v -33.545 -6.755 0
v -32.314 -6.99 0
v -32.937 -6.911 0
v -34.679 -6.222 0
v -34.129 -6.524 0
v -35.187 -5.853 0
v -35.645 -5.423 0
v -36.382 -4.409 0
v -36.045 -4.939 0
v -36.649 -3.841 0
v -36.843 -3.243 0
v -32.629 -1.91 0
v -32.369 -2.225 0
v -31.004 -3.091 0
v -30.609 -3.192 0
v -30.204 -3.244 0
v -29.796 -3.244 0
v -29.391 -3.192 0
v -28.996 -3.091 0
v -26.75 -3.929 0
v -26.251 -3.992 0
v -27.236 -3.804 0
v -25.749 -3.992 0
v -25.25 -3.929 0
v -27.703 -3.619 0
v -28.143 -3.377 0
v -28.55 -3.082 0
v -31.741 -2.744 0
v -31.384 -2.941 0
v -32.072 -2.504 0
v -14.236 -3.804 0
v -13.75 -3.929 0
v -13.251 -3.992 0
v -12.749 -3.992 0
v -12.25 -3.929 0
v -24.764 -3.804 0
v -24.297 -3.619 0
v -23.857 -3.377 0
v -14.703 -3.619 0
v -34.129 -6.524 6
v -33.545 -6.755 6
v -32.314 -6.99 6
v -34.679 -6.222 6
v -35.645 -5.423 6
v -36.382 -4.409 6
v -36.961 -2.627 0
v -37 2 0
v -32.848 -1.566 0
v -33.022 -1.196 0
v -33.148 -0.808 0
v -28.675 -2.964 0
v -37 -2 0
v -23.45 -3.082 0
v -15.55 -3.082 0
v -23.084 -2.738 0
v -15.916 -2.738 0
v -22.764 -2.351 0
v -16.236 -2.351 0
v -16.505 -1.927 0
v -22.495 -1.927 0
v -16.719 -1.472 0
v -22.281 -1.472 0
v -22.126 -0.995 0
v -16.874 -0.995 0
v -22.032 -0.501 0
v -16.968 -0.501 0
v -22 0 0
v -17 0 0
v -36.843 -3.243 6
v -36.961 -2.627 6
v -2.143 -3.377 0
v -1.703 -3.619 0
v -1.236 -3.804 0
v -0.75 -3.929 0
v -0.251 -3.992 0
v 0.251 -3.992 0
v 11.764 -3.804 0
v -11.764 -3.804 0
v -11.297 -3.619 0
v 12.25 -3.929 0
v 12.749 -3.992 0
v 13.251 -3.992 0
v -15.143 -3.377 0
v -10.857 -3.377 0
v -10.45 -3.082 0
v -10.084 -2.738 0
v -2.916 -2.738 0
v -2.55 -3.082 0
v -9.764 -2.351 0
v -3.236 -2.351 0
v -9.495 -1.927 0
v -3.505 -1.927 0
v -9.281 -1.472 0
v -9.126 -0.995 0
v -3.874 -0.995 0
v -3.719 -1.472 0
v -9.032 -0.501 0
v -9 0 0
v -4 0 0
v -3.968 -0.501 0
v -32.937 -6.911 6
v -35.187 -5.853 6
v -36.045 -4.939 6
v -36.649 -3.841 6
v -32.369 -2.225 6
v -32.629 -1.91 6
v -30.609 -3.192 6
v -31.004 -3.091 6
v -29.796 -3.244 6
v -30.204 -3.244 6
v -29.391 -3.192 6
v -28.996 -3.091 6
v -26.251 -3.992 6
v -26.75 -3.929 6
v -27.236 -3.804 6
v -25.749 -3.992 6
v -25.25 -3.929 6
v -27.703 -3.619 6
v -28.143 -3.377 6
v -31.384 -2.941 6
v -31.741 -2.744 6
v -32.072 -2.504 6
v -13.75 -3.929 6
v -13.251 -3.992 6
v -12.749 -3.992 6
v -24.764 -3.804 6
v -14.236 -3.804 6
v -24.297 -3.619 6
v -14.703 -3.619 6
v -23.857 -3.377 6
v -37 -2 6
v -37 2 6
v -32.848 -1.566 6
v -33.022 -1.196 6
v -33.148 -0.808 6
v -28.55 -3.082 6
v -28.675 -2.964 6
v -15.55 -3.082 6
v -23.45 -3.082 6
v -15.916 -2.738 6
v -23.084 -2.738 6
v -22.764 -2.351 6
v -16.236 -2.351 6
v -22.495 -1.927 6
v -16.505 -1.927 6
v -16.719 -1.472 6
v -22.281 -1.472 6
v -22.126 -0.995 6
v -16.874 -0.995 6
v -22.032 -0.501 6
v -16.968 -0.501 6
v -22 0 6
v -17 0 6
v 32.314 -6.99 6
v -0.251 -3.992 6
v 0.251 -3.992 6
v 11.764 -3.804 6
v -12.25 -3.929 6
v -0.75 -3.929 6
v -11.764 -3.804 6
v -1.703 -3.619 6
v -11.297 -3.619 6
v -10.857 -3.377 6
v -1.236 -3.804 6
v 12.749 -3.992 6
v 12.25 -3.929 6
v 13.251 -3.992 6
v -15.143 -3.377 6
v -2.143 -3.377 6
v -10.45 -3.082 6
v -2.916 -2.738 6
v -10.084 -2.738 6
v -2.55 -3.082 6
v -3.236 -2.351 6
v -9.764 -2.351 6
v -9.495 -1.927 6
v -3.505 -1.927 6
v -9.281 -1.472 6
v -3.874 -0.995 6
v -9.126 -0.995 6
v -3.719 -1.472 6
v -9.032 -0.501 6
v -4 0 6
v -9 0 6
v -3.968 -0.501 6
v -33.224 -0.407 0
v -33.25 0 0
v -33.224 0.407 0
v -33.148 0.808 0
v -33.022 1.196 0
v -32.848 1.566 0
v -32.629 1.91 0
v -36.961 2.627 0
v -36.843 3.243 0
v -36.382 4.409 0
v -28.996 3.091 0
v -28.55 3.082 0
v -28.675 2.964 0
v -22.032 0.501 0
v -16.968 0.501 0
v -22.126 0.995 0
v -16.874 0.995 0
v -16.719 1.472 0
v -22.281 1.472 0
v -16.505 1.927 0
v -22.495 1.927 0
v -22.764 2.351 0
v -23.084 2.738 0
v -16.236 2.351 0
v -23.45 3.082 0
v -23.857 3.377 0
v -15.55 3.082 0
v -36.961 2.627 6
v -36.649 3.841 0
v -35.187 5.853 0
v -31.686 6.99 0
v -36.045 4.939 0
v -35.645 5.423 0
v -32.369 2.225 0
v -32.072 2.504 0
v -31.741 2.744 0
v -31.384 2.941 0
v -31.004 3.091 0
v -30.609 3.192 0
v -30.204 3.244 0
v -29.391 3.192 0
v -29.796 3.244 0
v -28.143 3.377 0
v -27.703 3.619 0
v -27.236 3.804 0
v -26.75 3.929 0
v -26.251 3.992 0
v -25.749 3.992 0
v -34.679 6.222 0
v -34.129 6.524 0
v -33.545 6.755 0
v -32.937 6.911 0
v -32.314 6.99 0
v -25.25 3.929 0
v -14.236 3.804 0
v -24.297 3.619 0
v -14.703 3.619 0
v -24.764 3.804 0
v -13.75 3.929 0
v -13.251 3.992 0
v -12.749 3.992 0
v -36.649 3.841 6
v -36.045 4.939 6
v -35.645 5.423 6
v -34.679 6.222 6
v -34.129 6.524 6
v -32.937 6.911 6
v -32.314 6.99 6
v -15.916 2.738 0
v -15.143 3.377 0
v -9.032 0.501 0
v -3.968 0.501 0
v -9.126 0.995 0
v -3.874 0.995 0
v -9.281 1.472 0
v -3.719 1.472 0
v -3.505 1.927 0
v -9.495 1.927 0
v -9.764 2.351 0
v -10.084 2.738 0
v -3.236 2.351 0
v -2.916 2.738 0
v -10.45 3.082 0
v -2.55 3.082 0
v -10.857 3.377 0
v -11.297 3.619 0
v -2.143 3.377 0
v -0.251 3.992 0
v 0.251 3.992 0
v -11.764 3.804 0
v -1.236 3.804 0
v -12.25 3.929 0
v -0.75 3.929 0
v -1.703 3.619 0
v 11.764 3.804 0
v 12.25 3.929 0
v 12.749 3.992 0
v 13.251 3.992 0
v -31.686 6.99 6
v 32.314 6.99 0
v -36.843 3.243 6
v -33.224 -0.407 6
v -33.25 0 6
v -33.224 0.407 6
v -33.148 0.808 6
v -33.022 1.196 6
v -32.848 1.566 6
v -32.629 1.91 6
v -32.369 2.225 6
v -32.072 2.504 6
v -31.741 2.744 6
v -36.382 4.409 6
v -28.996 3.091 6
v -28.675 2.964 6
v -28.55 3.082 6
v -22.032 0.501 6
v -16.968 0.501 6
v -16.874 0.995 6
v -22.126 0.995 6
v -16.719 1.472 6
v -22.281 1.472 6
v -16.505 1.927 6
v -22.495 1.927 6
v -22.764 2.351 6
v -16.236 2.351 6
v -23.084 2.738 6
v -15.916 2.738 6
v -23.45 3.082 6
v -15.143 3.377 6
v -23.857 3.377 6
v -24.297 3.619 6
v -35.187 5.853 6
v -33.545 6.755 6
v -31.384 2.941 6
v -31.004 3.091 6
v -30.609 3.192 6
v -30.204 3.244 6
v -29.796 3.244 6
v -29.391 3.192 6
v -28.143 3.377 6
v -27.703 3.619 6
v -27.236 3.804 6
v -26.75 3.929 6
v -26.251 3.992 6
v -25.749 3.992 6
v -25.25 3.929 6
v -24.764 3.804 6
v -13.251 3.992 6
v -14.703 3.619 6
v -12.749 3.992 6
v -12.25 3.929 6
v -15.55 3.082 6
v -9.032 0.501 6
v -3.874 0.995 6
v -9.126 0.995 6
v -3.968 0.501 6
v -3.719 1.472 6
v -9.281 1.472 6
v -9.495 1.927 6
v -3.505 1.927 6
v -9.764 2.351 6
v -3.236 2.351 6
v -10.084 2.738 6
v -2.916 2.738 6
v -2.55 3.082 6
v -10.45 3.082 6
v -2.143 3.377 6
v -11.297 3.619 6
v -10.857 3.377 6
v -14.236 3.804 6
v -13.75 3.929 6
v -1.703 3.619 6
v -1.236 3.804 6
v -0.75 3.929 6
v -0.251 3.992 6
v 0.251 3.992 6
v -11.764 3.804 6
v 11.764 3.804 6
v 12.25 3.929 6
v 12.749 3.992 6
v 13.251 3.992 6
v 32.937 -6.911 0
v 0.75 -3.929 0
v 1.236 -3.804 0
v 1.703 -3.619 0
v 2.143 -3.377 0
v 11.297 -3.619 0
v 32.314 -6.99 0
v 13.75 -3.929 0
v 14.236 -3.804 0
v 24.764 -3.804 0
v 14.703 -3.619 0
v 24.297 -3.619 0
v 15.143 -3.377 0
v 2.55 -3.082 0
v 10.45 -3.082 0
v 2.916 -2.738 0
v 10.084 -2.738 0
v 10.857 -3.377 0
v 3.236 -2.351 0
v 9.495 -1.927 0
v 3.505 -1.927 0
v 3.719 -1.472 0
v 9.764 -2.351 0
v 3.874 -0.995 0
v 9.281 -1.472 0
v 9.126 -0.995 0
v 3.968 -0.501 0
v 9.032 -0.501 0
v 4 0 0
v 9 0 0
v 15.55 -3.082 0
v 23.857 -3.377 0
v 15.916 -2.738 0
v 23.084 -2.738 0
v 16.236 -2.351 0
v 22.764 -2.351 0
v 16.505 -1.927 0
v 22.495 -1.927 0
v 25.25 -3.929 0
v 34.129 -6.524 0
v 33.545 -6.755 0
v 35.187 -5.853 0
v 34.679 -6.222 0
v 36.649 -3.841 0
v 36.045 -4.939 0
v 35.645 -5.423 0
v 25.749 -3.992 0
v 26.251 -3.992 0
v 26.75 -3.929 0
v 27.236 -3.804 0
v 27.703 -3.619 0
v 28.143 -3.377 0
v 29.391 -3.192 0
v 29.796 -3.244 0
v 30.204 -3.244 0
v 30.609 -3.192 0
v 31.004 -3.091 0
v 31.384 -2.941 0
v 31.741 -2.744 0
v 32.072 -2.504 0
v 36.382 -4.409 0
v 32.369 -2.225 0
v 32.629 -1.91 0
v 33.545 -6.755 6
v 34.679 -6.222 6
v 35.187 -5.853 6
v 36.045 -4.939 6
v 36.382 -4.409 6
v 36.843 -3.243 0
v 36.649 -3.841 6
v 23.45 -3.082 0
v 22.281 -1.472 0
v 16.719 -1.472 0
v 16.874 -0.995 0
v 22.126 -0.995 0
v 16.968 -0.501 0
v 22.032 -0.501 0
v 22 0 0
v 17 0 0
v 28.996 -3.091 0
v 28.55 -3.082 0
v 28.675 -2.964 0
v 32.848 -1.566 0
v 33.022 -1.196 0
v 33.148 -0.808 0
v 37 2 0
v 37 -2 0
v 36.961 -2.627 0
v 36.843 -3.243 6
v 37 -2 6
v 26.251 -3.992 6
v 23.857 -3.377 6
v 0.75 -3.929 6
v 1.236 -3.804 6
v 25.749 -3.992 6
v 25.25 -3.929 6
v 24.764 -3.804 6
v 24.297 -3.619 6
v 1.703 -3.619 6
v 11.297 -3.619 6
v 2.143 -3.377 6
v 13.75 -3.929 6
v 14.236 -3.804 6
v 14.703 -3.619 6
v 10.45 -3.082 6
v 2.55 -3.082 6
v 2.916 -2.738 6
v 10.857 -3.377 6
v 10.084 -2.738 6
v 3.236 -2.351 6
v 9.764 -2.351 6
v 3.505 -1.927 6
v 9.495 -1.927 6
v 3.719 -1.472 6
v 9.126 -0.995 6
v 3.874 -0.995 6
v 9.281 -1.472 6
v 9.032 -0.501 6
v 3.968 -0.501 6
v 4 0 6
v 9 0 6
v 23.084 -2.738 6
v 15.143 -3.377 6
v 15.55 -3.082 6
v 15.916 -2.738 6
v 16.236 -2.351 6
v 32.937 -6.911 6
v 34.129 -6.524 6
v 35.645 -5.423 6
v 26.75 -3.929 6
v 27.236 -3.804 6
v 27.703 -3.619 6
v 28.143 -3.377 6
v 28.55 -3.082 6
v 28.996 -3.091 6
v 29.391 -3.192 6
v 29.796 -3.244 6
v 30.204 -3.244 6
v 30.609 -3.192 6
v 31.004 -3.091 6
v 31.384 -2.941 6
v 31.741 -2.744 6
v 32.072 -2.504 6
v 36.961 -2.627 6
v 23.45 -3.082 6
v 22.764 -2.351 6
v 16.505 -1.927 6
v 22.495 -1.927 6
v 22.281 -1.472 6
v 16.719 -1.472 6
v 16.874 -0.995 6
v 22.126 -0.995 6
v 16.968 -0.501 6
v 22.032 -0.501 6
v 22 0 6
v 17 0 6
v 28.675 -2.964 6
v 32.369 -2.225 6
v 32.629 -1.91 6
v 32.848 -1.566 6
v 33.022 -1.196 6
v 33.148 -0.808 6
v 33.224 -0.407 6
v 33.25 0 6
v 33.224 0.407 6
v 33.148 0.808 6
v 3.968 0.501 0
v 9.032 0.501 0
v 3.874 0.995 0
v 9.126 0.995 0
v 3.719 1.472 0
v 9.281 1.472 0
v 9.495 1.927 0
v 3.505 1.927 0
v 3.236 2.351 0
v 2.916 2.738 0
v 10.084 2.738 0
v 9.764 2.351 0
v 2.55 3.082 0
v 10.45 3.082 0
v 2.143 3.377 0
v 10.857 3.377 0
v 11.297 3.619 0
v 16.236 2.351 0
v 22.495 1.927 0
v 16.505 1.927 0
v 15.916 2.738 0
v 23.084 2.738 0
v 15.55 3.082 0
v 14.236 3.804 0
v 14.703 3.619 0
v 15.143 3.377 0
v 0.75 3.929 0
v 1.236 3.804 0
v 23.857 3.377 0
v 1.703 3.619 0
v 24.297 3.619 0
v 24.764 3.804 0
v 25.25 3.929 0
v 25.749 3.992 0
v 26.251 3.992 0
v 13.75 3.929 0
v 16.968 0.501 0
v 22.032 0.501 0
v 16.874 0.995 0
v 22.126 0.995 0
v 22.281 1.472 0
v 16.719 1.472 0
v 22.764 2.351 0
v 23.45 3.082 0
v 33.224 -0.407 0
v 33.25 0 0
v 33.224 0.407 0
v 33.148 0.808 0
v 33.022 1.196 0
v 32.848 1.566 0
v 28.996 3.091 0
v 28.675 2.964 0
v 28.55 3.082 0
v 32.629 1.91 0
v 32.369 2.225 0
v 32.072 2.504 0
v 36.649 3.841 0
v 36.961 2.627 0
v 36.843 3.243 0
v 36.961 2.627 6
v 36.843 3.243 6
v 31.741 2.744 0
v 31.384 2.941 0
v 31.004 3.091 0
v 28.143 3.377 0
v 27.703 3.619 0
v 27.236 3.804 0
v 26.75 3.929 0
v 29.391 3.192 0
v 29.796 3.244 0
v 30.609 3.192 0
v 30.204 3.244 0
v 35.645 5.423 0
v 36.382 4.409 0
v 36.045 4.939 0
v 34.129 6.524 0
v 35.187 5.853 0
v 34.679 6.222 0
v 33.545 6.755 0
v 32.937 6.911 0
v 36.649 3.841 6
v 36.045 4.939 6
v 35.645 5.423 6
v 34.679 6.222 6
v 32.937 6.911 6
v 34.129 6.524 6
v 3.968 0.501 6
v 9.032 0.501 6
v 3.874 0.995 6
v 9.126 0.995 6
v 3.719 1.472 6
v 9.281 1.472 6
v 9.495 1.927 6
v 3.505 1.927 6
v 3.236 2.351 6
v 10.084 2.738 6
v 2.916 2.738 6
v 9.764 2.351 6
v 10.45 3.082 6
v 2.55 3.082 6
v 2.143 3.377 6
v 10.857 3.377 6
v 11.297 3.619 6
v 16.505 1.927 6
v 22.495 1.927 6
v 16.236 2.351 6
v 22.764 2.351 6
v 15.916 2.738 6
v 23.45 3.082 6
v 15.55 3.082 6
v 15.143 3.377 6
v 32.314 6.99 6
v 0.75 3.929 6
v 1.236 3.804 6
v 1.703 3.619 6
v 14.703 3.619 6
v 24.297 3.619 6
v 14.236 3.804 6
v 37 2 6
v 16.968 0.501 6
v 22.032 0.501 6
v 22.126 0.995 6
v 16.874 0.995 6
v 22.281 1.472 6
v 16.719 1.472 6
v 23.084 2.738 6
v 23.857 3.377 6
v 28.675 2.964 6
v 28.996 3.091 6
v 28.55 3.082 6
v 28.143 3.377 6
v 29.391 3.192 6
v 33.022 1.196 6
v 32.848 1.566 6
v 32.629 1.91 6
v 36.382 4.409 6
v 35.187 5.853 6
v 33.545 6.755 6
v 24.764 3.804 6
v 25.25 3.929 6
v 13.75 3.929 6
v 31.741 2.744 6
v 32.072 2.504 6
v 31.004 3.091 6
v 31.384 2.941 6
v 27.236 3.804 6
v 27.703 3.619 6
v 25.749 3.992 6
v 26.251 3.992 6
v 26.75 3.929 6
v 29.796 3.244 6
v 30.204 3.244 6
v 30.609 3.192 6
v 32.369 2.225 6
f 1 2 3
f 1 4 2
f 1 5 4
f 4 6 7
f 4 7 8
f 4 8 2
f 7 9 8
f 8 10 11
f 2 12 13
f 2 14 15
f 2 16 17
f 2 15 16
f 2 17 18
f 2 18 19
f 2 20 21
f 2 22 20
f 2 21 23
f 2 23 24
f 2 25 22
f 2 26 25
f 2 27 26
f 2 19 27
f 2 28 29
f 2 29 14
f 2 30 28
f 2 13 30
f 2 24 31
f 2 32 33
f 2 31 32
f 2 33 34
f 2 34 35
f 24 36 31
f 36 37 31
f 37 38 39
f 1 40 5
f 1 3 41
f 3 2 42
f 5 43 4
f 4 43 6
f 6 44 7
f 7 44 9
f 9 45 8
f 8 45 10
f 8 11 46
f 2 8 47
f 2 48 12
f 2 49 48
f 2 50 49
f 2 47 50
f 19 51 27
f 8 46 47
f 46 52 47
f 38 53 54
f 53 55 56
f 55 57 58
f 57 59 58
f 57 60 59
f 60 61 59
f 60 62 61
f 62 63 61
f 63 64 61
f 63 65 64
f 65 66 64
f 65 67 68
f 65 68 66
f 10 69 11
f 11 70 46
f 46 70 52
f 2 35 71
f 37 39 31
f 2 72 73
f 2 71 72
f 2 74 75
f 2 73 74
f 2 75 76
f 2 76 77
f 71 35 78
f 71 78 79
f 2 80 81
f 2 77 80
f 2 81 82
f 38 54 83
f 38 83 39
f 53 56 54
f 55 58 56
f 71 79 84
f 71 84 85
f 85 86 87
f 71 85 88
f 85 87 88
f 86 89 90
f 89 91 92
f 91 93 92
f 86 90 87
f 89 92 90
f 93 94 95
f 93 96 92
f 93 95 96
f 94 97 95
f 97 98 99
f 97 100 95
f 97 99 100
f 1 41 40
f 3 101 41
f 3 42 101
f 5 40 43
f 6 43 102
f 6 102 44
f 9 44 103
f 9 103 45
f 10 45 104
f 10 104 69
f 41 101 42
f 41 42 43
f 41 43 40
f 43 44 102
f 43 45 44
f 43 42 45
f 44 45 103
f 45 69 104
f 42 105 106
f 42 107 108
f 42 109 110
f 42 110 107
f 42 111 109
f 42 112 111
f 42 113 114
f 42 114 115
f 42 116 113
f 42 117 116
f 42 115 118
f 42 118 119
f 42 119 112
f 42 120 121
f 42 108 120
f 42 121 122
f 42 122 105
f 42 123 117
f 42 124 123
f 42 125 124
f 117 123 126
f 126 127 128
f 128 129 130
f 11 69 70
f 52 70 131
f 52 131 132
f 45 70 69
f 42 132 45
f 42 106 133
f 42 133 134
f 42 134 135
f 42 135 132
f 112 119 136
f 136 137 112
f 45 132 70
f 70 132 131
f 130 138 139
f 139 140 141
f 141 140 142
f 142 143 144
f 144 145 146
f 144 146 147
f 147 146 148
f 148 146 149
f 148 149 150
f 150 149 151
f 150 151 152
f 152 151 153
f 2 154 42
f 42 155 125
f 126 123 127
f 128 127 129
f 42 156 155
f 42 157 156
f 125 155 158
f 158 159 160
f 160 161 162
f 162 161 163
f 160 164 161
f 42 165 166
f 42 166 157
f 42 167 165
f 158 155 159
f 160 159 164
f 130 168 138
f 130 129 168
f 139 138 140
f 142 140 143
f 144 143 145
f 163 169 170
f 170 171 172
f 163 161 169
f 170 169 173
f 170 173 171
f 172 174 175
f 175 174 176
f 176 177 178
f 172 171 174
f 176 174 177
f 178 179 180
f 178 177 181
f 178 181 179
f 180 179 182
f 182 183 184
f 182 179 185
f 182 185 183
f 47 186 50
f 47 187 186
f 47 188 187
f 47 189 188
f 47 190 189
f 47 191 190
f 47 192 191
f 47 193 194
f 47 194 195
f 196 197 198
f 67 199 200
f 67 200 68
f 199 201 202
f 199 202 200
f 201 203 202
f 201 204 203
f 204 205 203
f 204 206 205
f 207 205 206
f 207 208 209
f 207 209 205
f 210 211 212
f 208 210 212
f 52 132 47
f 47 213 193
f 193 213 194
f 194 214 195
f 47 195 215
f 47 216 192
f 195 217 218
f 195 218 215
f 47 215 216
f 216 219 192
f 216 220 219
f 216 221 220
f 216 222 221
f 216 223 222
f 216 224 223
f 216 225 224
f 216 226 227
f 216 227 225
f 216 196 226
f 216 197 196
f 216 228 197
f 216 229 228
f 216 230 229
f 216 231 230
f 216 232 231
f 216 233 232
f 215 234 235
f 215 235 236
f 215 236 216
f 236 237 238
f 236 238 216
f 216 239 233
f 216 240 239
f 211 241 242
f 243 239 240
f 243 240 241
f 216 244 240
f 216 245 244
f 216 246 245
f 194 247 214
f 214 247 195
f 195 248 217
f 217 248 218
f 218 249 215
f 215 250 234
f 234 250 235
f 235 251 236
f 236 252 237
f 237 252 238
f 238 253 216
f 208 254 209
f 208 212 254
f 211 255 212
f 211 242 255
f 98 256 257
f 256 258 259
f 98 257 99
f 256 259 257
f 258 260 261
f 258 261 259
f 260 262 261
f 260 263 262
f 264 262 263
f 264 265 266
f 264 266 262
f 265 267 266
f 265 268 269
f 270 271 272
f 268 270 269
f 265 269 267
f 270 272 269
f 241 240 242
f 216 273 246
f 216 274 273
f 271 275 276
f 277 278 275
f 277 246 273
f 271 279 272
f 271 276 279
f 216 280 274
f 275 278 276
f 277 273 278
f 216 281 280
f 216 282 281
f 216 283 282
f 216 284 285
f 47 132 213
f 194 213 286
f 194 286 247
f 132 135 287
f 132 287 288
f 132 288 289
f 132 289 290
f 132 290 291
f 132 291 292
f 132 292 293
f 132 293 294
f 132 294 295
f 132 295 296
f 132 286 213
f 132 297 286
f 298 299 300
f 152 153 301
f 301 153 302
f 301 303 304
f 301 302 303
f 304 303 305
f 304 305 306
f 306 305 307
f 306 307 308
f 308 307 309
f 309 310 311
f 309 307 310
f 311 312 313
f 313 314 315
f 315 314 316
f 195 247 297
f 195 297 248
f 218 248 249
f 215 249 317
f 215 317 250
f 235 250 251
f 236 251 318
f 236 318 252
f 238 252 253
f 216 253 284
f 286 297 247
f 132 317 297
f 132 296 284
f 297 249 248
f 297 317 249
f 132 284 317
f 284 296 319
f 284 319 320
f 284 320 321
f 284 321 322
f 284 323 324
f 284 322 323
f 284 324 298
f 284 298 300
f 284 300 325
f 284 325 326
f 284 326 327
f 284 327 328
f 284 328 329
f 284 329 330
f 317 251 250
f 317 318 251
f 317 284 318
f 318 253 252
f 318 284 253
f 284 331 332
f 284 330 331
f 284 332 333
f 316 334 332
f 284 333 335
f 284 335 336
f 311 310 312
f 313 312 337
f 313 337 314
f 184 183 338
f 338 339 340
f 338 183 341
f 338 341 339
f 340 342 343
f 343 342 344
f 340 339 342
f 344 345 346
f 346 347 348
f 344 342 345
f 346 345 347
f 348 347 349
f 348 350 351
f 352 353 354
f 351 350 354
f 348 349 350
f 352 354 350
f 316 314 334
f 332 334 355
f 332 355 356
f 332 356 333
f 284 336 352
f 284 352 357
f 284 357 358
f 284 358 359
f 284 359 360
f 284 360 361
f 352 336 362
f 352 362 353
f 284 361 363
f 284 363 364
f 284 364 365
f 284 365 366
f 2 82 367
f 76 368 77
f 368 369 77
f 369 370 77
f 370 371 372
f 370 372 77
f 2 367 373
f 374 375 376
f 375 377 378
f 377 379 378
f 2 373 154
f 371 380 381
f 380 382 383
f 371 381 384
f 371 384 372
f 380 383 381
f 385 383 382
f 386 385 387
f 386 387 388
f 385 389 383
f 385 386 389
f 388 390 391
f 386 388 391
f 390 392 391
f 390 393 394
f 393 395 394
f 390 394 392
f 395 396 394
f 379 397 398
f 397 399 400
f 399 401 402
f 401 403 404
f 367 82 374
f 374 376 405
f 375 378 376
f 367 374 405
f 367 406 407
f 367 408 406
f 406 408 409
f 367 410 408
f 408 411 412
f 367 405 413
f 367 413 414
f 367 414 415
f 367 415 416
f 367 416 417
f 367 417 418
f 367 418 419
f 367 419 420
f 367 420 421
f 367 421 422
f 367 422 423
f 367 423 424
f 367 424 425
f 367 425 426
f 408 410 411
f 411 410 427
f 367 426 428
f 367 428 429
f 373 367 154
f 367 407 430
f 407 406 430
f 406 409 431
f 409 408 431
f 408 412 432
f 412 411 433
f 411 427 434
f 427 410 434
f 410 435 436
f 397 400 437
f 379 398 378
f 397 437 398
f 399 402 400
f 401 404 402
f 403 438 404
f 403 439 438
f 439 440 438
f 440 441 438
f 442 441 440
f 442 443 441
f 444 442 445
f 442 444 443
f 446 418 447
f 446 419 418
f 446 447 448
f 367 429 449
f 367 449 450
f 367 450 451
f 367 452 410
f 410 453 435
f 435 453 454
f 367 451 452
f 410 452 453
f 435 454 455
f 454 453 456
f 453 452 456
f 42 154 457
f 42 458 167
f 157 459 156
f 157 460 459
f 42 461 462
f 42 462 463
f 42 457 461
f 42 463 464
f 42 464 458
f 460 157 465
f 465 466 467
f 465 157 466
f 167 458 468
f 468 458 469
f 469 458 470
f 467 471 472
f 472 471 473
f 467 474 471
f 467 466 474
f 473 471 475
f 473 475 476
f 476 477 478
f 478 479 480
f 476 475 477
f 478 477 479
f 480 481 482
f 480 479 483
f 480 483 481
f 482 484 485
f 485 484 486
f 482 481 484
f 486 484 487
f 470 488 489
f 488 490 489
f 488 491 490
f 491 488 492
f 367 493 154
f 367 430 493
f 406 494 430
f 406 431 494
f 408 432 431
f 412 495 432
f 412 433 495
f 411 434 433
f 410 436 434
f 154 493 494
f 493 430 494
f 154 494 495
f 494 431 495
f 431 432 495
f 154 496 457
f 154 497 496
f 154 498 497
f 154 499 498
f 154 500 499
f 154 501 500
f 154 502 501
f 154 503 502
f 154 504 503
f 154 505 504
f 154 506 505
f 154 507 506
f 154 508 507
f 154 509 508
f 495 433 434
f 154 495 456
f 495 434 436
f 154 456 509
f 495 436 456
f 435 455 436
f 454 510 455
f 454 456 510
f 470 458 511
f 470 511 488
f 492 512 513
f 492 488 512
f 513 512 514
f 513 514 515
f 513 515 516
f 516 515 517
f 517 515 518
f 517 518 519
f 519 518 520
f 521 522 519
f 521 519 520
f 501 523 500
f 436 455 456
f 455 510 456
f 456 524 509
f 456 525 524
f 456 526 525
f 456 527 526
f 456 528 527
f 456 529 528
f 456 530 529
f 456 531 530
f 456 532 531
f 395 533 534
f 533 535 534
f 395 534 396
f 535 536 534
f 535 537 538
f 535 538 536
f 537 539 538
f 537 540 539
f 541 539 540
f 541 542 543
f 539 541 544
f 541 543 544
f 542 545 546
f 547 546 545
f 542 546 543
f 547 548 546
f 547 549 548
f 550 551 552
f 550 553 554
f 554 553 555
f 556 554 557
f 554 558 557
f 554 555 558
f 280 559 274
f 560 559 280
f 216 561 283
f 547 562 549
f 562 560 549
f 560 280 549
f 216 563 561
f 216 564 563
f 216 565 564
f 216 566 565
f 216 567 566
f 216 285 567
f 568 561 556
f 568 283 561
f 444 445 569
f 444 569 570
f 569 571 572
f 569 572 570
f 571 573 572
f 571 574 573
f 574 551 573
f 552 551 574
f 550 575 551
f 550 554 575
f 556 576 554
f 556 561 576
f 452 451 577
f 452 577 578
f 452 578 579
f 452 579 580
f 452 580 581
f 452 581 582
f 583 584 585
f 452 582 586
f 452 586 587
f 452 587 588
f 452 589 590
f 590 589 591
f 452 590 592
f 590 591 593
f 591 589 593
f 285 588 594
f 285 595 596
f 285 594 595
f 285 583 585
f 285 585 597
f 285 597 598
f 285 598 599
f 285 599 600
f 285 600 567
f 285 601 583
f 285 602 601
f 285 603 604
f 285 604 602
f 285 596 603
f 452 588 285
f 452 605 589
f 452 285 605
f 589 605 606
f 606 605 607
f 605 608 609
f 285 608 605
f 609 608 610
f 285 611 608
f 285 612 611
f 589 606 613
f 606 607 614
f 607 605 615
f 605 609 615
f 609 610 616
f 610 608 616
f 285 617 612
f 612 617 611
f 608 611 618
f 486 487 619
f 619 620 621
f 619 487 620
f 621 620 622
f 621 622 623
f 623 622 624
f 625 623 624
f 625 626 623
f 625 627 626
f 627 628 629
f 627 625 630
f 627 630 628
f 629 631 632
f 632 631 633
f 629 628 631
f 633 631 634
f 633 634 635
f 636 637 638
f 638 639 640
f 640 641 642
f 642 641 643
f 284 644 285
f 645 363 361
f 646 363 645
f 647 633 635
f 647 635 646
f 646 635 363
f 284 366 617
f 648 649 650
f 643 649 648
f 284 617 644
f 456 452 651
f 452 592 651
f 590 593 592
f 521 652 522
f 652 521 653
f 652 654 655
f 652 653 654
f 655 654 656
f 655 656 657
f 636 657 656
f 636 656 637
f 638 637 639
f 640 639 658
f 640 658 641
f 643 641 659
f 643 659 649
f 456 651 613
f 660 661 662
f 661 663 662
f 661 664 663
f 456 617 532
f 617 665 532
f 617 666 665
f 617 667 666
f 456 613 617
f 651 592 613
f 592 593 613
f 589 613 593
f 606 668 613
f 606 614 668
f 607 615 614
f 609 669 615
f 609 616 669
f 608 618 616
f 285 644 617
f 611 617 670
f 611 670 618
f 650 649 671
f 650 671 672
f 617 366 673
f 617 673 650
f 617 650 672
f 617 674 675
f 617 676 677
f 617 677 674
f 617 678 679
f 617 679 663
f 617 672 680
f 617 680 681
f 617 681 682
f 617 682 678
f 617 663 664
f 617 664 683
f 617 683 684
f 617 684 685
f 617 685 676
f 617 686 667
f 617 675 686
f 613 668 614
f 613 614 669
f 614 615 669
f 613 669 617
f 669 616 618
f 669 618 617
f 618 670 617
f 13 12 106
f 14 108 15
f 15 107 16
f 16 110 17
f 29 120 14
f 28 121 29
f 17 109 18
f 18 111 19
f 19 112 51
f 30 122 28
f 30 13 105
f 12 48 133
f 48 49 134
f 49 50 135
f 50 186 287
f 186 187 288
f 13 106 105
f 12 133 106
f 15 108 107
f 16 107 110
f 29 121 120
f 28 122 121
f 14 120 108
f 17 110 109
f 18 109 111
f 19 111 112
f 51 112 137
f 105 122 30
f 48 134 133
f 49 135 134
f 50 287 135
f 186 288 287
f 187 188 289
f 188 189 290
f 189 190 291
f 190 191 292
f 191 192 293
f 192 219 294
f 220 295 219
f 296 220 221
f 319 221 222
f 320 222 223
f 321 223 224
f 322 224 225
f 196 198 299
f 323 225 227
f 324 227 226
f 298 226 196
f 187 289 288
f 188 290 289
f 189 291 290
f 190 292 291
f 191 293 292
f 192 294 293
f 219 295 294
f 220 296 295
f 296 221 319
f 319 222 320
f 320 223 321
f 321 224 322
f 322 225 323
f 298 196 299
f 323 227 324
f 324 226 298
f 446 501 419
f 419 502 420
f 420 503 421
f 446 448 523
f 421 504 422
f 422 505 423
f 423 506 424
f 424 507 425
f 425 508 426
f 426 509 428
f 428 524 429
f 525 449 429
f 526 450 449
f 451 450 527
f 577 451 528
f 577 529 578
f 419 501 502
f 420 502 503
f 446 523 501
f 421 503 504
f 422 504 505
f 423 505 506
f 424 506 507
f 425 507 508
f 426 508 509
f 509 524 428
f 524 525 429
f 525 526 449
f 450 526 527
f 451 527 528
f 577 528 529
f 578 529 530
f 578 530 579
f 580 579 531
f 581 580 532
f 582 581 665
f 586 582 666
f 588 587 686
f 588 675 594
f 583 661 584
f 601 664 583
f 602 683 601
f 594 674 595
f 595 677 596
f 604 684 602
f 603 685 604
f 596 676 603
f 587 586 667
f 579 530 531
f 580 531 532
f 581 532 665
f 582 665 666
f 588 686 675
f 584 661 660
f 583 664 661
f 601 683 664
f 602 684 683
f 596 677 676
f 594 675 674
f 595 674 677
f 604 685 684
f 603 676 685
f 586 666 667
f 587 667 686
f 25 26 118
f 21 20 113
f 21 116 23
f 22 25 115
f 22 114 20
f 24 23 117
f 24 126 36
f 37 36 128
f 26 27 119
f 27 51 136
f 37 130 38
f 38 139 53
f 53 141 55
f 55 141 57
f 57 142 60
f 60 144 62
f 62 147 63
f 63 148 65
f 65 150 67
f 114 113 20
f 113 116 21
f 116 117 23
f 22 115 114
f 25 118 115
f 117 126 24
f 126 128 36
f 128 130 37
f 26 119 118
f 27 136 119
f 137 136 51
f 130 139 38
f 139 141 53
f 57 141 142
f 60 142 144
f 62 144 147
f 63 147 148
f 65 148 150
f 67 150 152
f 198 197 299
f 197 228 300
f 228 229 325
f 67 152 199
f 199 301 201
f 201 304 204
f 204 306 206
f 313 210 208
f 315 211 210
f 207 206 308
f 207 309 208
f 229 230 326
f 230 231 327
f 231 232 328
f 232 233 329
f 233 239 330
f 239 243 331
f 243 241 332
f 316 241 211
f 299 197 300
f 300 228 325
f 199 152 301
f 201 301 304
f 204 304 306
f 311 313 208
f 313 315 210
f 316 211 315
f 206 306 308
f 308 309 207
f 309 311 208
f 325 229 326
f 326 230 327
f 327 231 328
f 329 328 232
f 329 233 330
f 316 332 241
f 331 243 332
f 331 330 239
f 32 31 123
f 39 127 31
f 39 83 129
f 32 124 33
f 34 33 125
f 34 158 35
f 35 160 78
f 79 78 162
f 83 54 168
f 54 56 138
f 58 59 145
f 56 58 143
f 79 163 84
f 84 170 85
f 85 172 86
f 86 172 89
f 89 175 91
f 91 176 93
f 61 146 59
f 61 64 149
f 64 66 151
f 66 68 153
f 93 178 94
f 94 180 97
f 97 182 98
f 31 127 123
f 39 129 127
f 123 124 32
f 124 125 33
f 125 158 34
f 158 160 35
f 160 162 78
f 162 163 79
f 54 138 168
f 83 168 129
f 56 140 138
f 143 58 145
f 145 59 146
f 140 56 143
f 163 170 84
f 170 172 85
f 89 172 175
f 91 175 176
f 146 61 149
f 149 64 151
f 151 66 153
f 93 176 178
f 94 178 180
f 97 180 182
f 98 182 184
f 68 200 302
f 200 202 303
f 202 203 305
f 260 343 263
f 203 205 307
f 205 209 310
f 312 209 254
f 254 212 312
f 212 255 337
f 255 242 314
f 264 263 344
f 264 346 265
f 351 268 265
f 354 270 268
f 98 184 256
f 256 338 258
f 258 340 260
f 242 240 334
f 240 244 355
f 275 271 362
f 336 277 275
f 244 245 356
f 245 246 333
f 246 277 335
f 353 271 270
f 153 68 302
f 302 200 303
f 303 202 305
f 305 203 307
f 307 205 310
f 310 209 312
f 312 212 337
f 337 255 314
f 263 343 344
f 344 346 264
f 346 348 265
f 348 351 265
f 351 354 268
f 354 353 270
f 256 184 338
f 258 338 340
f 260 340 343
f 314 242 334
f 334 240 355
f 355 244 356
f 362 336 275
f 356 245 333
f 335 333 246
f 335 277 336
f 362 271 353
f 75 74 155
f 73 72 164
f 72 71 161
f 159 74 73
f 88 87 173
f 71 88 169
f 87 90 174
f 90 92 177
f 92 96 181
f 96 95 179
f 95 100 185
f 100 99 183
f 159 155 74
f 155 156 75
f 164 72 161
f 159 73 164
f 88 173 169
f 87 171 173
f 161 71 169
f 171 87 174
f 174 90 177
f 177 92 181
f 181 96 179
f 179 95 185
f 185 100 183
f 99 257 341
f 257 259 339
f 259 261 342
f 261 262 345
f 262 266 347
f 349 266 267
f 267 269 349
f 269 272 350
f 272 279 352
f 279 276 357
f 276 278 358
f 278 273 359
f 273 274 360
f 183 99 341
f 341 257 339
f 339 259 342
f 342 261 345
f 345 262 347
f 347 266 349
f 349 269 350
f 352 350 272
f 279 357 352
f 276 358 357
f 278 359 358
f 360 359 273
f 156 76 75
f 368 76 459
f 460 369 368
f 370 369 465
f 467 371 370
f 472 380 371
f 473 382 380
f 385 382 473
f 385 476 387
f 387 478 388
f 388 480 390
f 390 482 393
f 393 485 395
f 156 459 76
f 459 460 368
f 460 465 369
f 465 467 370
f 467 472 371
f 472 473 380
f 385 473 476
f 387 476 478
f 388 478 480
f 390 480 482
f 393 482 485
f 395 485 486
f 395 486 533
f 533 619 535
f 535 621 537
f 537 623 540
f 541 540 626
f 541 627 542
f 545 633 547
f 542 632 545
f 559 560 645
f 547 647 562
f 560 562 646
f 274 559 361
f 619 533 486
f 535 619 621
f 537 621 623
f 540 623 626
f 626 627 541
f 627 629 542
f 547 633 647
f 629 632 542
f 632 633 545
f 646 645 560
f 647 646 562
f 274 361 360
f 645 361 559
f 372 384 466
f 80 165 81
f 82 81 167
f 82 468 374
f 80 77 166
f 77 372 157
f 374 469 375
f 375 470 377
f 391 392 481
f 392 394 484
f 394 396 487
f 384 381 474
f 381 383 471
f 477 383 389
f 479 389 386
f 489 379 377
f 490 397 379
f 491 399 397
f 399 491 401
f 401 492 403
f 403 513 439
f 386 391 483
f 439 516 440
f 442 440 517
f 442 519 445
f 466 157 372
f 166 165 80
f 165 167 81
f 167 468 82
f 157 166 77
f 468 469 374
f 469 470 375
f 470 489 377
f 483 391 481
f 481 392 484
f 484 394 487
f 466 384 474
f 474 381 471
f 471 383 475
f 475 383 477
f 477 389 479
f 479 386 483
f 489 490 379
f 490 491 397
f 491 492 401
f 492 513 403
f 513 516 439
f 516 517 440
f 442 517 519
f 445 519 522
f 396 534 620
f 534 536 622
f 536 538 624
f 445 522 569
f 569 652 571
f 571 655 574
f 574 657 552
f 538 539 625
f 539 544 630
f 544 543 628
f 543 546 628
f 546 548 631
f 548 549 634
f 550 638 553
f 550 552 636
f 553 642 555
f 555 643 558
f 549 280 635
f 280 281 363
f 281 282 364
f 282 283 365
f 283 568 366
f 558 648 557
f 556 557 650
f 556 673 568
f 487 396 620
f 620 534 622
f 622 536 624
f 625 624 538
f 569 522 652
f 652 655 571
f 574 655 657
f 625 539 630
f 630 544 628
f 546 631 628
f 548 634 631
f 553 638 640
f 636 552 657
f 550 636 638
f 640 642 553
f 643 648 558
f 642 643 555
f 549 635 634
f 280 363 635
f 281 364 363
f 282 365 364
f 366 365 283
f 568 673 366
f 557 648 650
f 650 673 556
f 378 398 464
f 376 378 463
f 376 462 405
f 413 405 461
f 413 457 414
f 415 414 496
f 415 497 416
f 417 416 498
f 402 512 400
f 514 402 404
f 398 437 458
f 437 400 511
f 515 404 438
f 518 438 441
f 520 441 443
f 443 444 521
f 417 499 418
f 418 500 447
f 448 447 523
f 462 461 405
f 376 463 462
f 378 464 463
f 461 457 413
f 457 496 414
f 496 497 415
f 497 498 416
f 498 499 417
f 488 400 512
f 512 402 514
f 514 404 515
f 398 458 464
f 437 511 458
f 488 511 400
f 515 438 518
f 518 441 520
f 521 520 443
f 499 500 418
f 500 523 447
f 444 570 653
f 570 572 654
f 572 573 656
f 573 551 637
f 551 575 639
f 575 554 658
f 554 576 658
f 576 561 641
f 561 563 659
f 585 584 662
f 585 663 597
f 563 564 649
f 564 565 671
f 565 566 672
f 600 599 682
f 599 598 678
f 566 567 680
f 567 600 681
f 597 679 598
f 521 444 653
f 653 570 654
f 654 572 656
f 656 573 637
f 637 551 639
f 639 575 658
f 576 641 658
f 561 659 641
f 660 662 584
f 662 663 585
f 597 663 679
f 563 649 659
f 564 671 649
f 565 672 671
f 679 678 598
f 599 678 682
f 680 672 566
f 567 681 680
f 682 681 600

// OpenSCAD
$fn = 50;

difference() {
	union() {
		hull() {
			translate(v = [-32.0, 2.0, 0]) {
				cylinder(h = 6, r = 5);
			}
			translate(v = [32.0, 2.0, 0]) {
				cylinder(h = 6, r = 5);
			}
			translate(v = [-32.0, -2.0, 0]) {
				cylinder(h = 6, r = 5);
			}
			translate(v = [32.0, -2.0, 0]) {
				cylinder(h = 6, r = 5);
			}
		}
	}
	union() {
		translate(v = [-30.0, 0.0, -100.0]) {
			cylinder(h = 200, r = 3.25);
		}
		translate(v = [30.0, 0.0, -100.0]) {
			cylinder(h = 200, r = 3.25);
		}
		translate(v = [-30.0, 0.0, -100.0]) {
			cylinder(h = 200, r = 1.8);
		}
		translate(v = [30.0, 0.0, -100.0]) {
			cylinder(h = 200, r = 1.8);
		}
		translate(v = [-26.0, 0, 0.0]) {
			cylinder(h = 6, r = 4.0);
		}
		translate(v = [-13.0, 0, 0.0]) {
			cylinder(h = 6, r = 4.0);
		}
		cylinder(h = 6, r = 4.0);
		translate(v = [13.0, 0, 0.0]) {
			cylinder(h = 6, r = 4.0);
		}
		translate(v = [26.0, 0, 0.0]) {
			cylinder(h = 6, r = 4.0);
		}
	}
}
